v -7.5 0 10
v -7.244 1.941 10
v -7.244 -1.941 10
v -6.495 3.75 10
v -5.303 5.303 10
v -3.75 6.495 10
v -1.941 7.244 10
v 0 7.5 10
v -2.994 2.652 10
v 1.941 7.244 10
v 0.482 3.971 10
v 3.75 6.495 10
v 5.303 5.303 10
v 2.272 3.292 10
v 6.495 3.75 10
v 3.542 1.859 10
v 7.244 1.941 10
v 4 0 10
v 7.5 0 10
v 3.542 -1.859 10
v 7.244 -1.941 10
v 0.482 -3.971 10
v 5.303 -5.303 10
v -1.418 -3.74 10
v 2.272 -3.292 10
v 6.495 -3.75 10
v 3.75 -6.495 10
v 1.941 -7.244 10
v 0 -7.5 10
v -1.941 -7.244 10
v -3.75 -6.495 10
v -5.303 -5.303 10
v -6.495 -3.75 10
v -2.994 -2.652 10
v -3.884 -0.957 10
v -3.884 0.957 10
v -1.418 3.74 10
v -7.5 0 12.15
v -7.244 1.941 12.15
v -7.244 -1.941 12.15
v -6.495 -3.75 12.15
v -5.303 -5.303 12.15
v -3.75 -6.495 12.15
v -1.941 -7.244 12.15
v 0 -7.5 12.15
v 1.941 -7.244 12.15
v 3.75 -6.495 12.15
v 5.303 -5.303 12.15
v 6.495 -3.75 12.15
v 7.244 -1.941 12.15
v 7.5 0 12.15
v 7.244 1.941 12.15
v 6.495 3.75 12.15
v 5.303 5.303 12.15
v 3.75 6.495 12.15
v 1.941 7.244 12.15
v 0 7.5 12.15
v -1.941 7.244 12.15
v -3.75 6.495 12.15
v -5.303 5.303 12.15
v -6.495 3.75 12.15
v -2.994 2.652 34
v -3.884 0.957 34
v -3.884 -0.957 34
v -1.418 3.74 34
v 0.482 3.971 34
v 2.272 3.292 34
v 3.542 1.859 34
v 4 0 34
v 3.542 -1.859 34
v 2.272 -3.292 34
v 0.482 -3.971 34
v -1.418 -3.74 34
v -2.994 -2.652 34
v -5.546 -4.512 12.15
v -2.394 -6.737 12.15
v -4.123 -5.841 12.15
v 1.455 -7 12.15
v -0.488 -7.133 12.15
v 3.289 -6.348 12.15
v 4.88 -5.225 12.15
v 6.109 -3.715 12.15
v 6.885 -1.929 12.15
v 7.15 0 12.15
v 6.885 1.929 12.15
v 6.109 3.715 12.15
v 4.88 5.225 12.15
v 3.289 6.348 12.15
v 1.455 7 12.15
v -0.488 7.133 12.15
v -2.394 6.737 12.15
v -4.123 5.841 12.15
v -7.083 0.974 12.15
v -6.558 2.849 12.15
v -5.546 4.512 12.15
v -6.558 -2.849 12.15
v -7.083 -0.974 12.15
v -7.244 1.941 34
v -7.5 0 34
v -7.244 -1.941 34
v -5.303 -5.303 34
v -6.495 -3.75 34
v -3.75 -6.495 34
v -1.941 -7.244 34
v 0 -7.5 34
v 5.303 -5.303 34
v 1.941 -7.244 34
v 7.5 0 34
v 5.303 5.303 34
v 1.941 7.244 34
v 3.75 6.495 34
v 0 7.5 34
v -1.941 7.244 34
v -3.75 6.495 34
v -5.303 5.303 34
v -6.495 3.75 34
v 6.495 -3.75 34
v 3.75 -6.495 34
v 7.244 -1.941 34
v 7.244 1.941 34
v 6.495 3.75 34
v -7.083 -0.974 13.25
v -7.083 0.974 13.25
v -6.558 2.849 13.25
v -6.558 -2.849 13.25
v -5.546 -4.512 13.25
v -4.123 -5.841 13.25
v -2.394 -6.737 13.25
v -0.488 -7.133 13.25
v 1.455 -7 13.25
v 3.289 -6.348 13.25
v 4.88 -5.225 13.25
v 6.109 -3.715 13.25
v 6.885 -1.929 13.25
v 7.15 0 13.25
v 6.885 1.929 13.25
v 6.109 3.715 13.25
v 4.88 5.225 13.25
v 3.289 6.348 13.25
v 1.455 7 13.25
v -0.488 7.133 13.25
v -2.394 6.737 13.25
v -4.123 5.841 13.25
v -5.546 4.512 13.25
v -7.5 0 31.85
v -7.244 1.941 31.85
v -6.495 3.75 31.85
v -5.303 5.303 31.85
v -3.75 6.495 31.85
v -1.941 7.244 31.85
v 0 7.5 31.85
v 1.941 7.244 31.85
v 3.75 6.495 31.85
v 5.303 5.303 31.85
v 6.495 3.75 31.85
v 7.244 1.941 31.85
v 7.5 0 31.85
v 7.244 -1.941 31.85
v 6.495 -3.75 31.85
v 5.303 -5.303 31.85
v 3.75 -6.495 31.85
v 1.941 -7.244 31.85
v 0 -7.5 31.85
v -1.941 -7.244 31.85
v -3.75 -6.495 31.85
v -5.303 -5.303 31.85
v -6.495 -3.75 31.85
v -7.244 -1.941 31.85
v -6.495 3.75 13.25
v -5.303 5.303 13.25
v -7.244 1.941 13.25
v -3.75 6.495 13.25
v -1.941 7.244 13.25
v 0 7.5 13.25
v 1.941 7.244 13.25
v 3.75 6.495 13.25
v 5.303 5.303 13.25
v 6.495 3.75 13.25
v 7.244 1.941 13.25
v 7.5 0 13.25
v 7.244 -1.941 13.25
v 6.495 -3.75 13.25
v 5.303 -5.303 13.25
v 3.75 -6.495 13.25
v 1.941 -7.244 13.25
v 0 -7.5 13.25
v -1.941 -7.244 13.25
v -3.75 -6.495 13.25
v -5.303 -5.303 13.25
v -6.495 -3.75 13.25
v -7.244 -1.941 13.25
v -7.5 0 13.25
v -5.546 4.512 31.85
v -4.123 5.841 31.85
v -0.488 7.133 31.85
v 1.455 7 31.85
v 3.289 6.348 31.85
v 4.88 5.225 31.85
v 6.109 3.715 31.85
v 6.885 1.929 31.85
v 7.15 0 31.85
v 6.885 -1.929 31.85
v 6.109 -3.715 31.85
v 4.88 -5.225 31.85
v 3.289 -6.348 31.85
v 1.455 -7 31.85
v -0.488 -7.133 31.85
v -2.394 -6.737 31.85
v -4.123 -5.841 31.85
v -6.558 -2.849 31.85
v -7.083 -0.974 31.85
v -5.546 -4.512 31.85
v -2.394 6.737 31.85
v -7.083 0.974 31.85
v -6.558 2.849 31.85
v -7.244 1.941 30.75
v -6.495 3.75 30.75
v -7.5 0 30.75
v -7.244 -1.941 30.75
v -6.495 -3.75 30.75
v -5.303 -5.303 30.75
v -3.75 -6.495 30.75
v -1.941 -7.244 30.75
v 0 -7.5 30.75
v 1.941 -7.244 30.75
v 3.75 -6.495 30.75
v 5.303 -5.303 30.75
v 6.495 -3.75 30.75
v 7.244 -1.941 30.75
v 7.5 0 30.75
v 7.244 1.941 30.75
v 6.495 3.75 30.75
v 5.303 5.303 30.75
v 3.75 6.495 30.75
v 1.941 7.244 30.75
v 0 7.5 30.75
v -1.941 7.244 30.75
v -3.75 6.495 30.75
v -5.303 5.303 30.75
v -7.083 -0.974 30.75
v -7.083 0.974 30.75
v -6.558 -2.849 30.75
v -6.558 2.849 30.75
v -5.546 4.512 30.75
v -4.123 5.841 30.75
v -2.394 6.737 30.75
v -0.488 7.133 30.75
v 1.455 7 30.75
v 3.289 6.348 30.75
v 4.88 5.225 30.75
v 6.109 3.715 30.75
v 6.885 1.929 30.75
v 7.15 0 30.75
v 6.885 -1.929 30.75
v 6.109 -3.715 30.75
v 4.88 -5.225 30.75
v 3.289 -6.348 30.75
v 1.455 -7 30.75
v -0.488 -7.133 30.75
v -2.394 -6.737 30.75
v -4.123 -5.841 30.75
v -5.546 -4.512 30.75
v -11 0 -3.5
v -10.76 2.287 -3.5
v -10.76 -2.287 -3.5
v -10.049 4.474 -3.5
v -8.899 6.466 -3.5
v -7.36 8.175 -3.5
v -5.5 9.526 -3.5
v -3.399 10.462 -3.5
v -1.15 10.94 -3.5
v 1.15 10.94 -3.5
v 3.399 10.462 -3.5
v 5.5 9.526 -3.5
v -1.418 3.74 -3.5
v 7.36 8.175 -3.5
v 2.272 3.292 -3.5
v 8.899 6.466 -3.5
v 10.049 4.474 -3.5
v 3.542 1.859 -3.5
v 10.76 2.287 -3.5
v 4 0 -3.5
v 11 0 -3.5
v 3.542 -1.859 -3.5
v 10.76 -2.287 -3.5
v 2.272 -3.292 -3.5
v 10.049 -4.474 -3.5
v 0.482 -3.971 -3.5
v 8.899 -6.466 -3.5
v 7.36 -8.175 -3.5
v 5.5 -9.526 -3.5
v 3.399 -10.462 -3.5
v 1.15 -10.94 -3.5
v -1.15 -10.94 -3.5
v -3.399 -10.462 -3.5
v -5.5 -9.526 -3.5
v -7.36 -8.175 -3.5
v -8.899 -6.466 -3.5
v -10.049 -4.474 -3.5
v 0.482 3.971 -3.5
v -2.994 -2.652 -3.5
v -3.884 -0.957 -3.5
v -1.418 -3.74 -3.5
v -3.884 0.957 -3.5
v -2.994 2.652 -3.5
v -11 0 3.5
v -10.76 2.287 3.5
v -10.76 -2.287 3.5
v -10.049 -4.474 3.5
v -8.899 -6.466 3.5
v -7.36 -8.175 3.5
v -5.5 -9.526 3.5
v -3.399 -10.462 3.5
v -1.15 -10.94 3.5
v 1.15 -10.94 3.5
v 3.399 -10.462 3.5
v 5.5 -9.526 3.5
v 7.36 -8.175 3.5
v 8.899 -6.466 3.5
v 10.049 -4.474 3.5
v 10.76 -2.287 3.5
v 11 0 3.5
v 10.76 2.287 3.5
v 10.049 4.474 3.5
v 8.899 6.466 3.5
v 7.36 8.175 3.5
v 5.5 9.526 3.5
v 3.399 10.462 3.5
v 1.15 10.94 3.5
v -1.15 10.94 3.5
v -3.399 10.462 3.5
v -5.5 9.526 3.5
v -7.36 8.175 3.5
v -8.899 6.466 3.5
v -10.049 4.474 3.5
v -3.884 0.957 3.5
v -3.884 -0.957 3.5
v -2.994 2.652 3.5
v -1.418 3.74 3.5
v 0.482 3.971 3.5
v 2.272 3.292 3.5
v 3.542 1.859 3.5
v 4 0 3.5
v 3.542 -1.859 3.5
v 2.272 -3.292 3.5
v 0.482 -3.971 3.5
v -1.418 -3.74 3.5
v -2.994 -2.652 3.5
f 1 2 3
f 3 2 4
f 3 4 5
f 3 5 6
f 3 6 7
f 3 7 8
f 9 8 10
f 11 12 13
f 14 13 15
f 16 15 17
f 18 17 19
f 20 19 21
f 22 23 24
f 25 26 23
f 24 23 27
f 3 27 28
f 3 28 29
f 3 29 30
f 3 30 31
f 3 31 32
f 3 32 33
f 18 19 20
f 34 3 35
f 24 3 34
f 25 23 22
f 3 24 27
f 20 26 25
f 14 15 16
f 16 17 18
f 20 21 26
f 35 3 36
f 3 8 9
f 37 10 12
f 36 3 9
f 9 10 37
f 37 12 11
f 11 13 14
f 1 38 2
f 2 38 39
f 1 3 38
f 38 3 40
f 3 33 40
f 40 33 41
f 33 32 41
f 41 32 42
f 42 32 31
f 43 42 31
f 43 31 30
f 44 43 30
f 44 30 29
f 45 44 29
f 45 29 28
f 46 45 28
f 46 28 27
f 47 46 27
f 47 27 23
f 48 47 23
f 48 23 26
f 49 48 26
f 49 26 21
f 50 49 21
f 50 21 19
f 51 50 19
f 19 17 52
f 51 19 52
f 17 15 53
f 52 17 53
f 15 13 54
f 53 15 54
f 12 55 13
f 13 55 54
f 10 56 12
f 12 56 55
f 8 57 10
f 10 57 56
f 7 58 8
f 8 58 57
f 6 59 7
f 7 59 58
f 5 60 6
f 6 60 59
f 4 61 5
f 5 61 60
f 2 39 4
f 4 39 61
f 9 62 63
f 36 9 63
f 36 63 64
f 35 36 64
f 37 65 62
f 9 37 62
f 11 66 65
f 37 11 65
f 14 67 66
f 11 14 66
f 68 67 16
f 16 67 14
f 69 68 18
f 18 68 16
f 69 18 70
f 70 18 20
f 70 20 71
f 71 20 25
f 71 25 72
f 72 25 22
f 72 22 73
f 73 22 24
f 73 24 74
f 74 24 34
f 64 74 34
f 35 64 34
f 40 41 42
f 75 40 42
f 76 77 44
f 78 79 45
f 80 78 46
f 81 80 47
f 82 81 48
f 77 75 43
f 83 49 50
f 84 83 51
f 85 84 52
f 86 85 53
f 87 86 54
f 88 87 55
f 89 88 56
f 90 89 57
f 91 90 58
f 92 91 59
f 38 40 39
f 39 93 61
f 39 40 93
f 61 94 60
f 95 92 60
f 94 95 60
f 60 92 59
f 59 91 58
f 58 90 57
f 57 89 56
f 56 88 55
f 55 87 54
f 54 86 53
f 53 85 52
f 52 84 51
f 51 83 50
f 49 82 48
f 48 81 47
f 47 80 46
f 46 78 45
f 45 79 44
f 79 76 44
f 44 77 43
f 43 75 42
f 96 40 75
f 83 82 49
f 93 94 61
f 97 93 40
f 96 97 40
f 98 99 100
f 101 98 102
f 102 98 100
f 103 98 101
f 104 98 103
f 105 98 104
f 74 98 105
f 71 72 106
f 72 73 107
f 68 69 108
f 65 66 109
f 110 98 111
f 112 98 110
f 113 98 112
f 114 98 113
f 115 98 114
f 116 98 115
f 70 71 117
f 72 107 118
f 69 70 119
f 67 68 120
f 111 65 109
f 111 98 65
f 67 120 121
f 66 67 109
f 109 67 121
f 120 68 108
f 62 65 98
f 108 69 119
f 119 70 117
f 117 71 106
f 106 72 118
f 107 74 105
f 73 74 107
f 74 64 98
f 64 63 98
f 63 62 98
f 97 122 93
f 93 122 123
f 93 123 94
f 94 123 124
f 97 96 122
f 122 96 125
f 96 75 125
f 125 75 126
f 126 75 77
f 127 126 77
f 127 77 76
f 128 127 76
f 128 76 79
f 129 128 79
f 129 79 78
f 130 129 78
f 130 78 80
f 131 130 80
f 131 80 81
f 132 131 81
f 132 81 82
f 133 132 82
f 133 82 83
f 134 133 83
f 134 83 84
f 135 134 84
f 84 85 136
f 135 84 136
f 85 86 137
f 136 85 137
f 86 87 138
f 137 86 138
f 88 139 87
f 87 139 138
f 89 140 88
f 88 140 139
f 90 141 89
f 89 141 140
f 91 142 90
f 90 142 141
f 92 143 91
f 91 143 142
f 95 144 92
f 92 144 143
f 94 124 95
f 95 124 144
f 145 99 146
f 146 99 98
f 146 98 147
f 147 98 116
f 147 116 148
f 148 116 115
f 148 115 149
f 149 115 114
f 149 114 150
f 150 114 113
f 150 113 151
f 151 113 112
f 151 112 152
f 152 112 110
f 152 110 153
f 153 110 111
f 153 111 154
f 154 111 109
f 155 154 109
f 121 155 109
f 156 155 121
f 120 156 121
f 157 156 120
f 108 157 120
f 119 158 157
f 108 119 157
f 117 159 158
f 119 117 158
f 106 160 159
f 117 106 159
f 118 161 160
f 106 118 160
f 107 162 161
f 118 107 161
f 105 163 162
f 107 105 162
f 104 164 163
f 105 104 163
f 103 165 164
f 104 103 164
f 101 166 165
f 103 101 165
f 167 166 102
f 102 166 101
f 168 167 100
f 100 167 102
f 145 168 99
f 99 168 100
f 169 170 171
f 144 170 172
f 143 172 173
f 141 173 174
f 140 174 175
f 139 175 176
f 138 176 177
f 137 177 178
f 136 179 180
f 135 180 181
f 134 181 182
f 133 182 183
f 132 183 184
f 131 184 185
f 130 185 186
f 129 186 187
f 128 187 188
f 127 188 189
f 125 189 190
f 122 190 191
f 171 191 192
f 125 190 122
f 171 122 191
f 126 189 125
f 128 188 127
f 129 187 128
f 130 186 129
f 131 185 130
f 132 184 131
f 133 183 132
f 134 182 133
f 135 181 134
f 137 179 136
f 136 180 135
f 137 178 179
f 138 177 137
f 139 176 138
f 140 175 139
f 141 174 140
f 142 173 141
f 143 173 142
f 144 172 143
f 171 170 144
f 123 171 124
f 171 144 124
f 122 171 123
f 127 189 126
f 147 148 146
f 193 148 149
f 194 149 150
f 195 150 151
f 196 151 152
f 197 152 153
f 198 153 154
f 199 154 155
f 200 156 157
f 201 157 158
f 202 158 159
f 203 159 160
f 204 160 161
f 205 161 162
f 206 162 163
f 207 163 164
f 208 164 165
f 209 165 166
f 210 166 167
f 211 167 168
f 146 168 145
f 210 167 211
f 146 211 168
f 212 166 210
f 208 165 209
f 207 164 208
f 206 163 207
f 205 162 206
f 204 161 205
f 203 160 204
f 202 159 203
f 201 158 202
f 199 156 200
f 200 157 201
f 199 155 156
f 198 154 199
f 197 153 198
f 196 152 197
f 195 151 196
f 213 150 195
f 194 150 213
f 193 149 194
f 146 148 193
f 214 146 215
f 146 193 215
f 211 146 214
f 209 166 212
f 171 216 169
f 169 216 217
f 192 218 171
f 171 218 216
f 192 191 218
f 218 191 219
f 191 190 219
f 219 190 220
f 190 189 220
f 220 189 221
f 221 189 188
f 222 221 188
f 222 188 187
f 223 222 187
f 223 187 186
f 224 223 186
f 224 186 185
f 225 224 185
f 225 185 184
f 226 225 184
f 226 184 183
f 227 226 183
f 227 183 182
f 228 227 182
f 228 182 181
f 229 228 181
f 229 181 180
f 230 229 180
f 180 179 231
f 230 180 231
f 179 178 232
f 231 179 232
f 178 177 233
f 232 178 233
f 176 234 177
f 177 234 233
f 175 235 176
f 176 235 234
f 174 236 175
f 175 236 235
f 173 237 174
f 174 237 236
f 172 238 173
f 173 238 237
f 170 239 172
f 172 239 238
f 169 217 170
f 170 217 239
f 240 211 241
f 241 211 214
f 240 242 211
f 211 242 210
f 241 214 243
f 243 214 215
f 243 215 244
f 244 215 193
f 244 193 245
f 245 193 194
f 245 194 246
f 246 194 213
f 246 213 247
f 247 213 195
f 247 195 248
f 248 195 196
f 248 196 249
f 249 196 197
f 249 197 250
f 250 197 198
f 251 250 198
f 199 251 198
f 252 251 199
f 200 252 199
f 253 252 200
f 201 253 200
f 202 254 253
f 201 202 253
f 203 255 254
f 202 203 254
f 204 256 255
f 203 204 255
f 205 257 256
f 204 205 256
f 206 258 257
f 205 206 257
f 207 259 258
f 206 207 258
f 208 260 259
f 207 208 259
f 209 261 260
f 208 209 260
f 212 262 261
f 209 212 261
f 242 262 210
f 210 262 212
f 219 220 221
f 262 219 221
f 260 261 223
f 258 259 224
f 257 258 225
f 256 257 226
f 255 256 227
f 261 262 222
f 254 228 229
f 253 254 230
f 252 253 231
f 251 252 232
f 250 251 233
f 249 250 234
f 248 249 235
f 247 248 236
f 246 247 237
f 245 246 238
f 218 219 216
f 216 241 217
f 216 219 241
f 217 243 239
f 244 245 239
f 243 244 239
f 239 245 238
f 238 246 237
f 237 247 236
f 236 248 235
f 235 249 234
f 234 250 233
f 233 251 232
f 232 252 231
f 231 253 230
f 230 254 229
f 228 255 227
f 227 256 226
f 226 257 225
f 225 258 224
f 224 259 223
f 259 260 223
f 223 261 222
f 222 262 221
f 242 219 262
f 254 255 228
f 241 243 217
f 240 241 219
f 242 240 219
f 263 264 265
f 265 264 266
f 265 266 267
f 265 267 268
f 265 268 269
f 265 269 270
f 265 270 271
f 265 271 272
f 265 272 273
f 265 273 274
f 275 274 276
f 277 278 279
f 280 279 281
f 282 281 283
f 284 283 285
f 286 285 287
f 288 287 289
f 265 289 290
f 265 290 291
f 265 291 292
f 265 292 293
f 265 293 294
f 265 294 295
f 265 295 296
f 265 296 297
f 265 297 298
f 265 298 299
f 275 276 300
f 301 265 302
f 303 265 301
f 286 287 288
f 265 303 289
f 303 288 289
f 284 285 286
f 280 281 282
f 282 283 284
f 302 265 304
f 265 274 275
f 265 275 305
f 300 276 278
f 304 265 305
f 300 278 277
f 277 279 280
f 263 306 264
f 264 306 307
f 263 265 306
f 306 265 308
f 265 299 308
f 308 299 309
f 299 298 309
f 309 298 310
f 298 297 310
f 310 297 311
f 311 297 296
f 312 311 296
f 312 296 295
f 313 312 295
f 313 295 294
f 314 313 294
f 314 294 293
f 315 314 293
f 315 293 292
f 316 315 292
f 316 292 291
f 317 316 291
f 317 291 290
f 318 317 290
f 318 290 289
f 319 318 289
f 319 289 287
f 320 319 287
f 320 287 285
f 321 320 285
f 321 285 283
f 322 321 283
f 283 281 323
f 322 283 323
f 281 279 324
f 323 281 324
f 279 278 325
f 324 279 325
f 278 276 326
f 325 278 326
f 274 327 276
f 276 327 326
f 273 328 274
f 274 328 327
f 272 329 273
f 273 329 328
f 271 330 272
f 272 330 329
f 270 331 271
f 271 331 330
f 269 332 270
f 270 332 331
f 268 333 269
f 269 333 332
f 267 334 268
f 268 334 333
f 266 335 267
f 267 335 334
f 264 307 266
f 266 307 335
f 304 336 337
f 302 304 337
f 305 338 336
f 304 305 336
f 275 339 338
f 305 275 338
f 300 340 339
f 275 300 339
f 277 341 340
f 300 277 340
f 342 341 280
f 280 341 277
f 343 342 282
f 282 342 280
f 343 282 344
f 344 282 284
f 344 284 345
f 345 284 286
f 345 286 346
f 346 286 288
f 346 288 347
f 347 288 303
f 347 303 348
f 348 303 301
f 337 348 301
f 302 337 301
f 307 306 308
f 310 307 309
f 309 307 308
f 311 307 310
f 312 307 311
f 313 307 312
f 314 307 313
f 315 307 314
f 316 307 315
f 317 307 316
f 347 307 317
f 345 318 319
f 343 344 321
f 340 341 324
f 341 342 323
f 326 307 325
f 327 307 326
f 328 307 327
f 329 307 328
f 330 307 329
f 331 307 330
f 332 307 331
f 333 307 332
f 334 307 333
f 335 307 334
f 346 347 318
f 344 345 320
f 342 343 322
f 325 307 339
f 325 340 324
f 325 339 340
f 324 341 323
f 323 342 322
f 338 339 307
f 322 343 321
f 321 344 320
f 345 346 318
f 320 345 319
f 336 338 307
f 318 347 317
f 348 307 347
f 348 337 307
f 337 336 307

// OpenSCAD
steel = [0.8, 0.8, 0.9];

module lm8uu() {
   module groove() {
       difference() {
           cylinder(h=1.1, r=7.5);
           cylinder(h=1.2, r=7.5-(0.7/2));
       }
   }
   color(steel) render() difference() {
       cylinder(h=24, r=7.5);
       translate([0, 0, -0.5]) cylinder(h=25, r=4);
       translate([0, 0, 3.25-1.1]) groove();
       translate([0, 0, 24-3.25]) groove();
   }
}

module 608zz() {
	difference() {
		cylinder(h=7, r=22/2, center=true);
		cylinder(h=8, r=4, center=true);
	}
}

translate([0, 0, 10]) lm8uu();
608zz();
